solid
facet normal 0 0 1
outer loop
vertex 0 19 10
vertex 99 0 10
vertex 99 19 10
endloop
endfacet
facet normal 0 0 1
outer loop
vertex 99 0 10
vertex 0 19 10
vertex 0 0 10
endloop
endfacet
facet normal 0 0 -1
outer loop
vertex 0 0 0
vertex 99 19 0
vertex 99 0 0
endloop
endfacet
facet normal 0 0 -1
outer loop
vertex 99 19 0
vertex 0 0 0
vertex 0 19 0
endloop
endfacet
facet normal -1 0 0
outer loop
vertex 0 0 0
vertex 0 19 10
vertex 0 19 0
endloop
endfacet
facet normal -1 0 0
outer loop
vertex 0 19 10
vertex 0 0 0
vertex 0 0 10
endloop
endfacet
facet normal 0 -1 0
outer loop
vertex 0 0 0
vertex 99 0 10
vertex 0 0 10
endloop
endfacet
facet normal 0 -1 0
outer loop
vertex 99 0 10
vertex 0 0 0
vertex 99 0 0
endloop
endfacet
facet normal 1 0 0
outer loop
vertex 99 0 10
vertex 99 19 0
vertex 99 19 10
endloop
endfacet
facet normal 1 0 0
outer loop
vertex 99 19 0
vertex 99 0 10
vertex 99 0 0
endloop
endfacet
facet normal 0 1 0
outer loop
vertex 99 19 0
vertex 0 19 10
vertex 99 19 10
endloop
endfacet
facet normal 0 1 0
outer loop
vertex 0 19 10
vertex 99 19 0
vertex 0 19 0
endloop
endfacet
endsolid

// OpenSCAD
module i_beam(length, width, height, fillet_radius) {
  difference() {
    cube([length, width, height]);
    translate([length - 1, 0, 0])
    cube([1, width, height]);
    translate([0, width - 1, 0])
    cube([length, 1, height]);
  }
}

i_beam(length = 100, width = 20, height = 10, fillet_radius = 2);
